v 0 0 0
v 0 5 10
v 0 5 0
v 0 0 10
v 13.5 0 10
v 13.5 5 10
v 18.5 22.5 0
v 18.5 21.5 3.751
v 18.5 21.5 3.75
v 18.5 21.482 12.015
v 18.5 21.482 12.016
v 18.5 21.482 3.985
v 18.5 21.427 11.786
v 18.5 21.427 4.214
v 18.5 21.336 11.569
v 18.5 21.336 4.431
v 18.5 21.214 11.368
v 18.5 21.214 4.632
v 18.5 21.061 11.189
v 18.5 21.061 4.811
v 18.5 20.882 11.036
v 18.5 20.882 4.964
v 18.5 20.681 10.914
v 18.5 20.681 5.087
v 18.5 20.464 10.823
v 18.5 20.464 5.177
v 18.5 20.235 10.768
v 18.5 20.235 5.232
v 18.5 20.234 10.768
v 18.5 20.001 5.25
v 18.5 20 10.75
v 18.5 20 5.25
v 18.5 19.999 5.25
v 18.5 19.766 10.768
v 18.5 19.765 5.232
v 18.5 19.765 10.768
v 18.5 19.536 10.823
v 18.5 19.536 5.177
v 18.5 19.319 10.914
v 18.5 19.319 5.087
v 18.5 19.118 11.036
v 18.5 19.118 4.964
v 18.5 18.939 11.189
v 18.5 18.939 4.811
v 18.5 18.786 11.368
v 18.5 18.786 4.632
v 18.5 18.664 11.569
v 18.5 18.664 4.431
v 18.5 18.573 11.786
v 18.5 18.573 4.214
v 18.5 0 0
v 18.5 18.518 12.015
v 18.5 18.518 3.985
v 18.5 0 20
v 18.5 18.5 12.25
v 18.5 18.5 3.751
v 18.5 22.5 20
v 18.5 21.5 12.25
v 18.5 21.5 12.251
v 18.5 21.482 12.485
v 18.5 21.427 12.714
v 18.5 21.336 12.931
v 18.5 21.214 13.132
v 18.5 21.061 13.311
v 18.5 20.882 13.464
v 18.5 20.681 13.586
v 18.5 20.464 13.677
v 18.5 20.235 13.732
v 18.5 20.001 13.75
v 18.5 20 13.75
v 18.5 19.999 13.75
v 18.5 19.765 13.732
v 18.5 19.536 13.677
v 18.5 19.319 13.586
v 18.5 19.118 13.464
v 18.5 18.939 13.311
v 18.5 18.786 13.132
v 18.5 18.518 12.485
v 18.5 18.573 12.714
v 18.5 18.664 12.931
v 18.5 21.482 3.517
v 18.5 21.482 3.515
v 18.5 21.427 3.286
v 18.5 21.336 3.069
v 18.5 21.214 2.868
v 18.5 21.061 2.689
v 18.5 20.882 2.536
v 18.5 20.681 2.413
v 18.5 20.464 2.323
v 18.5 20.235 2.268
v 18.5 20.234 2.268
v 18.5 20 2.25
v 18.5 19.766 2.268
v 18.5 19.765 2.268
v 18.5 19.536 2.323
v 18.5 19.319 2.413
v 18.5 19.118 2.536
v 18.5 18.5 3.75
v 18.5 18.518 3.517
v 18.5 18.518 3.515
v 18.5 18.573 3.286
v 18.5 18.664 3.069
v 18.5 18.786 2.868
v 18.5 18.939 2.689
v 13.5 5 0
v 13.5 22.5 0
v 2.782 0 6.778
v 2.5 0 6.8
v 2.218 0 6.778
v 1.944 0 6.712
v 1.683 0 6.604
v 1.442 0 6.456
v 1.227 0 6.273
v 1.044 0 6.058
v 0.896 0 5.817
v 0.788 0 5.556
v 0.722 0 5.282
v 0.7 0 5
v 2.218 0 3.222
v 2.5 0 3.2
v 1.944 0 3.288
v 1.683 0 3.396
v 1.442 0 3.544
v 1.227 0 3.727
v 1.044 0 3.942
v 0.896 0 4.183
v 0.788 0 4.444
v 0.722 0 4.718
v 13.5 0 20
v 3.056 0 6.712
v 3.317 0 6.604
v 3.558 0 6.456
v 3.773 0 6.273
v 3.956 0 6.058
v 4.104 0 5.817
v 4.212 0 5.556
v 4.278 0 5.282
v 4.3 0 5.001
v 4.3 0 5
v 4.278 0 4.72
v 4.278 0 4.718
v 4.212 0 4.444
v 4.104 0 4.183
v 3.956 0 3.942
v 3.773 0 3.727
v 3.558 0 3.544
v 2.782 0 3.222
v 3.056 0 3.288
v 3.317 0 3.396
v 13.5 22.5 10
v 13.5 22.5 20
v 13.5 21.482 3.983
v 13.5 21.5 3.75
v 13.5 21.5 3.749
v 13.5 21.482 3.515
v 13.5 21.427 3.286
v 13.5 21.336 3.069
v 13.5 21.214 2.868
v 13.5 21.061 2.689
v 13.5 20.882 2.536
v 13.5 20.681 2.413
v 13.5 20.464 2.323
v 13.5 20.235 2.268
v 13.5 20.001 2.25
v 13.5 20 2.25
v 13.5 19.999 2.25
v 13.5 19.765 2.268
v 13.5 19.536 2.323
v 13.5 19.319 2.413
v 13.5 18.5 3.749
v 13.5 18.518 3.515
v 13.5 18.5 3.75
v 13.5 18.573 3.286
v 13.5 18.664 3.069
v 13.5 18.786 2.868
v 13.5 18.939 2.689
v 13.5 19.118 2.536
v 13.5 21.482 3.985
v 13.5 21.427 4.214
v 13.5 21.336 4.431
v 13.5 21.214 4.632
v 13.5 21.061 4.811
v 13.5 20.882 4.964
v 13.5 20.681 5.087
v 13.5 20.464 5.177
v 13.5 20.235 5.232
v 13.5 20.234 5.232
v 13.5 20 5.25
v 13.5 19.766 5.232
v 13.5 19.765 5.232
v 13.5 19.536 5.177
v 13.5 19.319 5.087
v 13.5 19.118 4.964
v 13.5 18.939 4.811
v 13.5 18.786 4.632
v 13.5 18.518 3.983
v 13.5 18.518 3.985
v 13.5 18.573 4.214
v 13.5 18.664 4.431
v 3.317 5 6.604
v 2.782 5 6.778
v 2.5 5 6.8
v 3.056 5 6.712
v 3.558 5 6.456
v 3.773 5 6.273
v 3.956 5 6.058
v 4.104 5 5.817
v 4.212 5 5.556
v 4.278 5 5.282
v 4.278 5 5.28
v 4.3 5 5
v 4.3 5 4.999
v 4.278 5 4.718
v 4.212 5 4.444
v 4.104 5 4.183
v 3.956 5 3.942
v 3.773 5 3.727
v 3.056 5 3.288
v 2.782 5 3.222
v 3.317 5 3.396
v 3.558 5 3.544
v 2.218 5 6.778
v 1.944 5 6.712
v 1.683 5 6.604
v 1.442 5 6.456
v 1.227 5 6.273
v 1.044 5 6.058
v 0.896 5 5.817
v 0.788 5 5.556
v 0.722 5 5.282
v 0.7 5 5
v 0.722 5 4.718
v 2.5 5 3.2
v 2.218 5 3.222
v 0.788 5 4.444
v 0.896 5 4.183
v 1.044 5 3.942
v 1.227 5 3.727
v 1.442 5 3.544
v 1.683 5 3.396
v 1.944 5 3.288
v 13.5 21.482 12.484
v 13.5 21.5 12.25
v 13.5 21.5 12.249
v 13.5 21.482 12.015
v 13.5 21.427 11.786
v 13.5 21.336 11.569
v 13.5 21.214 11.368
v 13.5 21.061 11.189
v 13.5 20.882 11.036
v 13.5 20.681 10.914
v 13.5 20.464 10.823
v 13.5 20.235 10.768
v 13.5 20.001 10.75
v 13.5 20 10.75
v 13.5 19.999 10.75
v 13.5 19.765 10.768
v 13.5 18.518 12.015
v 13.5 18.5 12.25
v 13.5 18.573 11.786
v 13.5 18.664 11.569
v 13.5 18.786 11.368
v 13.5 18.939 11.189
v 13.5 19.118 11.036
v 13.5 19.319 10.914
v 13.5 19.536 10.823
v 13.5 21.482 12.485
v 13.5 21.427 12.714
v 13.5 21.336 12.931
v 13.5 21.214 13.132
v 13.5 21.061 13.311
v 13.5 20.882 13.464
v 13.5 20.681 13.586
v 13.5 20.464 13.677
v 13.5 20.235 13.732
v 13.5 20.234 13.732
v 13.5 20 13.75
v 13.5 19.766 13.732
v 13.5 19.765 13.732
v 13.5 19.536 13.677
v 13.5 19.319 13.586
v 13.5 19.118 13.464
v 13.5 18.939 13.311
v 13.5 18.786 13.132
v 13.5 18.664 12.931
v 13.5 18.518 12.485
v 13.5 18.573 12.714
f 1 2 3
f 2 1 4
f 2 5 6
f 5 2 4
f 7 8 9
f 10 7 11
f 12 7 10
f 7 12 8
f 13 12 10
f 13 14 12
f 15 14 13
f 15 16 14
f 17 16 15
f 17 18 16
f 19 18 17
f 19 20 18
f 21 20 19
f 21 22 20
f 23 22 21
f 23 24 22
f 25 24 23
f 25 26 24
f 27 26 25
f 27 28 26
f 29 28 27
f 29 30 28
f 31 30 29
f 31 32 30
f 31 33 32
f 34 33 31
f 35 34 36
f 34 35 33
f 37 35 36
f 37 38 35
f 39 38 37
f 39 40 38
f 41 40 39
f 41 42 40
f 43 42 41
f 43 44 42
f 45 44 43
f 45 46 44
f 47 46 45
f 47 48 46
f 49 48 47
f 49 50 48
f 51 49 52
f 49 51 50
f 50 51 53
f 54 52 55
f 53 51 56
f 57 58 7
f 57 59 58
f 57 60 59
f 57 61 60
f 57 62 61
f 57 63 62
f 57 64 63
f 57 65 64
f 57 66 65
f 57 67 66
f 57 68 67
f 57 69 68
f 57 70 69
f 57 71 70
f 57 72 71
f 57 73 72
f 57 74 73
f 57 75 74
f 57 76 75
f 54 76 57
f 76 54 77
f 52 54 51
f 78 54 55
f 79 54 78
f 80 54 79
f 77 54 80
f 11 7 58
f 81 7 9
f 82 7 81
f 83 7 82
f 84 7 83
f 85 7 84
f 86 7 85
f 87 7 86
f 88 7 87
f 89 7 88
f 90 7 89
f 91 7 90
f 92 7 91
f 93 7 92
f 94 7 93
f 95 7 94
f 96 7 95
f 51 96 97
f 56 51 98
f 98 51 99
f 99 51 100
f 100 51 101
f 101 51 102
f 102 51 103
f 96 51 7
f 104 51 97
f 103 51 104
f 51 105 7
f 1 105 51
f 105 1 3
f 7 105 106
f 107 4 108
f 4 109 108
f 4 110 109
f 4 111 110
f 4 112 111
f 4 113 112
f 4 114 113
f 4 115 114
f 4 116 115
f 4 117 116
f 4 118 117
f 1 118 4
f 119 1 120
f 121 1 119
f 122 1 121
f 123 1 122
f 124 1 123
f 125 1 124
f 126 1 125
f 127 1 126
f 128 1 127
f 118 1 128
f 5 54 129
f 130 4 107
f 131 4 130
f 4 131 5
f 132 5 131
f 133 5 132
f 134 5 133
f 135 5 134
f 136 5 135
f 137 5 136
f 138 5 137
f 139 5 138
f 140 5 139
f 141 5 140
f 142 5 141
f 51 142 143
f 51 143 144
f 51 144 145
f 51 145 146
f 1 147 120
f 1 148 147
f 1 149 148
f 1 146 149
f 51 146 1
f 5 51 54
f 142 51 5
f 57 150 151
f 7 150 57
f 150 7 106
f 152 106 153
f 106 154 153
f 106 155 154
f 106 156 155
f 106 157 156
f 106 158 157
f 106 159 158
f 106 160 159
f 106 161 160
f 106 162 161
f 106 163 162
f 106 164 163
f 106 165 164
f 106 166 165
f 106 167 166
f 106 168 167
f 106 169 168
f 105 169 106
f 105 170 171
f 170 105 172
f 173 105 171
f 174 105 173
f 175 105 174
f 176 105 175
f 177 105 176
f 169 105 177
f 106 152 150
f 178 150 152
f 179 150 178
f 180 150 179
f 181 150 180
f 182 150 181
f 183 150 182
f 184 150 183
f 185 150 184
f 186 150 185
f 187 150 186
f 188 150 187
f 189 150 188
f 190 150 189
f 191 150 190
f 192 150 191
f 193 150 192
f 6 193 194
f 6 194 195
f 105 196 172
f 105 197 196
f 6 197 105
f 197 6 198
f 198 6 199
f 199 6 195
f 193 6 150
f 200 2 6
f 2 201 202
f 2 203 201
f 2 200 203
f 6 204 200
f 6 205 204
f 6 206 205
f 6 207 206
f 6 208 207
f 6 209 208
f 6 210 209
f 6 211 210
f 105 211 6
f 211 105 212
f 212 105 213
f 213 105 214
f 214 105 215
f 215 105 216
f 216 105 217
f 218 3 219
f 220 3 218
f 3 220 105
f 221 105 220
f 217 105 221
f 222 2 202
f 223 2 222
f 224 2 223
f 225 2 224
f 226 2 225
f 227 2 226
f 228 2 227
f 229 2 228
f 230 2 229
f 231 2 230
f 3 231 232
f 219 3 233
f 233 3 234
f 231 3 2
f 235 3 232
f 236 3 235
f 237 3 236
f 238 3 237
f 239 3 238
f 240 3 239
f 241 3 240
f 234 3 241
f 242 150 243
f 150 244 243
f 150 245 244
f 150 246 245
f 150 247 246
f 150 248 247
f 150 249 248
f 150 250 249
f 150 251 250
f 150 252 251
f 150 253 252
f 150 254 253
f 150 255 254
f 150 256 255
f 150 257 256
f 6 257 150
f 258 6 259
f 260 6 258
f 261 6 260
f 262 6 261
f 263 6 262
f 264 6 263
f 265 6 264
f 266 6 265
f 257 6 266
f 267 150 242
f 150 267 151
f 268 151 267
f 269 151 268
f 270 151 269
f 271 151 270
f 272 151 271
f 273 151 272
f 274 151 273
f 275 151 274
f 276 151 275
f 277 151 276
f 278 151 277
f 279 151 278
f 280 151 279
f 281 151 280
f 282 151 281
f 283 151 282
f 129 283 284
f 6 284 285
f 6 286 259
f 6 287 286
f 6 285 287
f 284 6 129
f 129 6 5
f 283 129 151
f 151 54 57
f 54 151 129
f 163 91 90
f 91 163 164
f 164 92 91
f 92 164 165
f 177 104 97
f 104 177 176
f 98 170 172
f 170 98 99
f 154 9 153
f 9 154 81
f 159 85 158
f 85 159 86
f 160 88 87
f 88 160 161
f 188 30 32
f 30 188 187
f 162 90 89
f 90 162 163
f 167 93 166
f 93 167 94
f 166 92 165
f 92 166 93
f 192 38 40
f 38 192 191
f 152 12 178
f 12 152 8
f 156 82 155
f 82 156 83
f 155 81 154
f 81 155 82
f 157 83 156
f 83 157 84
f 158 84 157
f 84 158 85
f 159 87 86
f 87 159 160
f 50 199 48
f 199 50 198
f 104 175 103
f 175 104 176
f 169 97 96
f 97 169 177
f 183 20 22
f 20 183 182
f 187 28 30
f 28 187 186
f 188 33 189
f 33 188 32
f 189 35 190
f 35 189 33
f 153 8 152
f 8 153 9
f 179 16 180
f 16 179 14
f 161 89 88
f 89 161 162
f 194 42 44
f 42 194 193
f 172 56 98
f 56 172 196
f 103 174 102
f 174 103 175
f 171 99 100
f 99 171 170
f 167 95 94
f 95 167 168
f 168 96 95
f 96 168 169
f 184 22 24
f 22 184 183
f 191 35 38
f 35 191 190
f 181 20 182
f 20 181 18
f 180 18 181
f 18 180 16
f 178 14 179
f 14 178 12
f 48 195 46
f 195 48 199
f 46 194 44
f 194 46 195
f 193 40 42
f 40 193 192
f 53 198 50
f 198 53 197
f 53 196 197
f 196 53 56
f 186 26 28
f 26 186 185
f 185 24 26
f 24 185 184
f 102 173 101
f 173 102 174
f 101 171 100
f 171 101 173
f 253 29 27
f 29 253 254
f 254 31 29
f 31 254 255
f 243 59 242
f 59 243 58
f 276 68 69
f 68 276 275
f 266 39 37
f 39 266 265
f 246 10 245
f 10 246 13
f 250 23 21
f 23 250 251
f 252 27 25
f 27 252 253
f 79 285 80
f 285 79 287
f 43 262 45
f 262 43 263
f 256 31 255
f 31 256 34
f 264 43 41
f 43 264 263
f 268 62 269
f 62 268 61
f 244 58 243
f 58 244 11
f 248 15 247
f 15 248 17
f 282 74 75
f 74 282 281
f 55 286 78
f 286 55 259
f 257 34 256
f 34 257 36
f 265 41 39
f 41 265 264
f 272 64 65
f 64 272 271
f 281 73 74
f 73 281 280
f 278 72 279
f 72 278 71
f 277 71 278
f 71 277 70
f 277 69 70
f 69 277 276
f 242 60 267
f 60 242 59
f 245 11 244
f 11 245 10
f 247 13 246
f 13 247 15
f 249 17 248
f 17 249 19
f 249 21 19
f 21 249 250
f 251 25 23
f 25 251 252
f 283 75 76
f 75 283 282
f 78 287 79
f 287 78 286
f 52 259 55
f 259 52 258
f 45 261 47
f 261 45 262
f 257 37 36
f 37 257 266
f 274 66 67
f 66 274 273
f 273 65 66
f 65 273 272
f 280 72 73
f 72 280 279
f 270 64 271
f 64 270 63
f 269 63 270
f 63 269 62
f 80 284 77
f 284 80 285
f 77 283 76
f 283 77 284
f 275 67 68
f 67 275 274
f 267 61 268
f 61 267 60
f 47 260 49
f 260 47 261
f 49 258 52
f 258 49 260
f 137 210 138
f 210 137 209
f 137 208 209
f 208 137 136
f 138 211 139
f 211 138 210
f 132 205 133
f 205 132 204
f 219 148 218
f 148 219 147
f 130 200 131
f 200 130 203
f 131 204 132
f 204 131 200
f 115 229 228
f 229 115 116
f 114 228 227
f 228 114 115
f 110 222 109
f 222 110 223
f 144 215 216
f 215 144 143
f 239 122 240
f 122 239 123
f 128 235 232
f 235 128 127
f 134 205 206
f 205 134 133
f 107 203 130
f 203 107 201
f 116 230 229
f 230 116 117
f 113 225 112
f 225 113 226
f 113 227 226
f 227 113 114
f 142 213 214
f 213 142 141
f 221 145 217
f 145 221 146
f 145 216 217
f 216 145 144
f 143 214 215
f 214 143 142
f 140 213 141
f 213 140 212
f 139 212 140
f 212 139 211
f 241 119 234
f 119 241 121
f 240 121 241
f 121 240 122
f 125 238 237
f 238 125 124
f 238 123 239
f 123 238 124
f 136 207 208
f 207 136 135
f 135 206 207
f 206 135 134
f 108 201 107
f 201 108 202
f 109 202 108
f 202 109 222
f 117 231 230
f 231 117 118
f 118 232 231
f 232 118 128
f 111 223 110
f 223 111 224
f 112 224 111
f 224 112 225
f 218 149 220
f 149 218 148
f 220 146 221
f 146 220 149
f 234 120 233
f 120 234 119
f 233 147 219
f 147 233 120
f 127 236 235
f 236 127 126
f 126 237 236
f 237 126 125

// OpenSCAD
// X endstop for K40 laser cutter

thickness = 5;
endstopOffset = 20; // adjust to maximize X travel

module xEndstopMount(thickness=5,endstopOffset = 20, endstopMountingHoleSep = 8.5){
    depth = endstopOffset+2.5;
    difference(){
        union(){
            difference(){
                cube([18.5,depth,10]);
                translate([-thickness,thickness,-1]) cube([18.5,depth,12]);
            }
            translate([18.5-thickness,0,10]) cube([thickness,depth,10]);
        }
       #translate([2.5,thickness/2,5]) rotate([90]) cylinder(d=3.6,h=thickness*1.01,center=true,$fn=40);
        
        // endstop mounts
        translate([0,0,8]) for(x=[-1,1]){
            #translate([16,endstopOffset,x*(endstopMountingHoleSep/2)]) rotate([0,90,0]) cylinder(d=3,h=thickness*1.01,center=true,$fn=40);
        }
    }
}

!xEndstopMount();
